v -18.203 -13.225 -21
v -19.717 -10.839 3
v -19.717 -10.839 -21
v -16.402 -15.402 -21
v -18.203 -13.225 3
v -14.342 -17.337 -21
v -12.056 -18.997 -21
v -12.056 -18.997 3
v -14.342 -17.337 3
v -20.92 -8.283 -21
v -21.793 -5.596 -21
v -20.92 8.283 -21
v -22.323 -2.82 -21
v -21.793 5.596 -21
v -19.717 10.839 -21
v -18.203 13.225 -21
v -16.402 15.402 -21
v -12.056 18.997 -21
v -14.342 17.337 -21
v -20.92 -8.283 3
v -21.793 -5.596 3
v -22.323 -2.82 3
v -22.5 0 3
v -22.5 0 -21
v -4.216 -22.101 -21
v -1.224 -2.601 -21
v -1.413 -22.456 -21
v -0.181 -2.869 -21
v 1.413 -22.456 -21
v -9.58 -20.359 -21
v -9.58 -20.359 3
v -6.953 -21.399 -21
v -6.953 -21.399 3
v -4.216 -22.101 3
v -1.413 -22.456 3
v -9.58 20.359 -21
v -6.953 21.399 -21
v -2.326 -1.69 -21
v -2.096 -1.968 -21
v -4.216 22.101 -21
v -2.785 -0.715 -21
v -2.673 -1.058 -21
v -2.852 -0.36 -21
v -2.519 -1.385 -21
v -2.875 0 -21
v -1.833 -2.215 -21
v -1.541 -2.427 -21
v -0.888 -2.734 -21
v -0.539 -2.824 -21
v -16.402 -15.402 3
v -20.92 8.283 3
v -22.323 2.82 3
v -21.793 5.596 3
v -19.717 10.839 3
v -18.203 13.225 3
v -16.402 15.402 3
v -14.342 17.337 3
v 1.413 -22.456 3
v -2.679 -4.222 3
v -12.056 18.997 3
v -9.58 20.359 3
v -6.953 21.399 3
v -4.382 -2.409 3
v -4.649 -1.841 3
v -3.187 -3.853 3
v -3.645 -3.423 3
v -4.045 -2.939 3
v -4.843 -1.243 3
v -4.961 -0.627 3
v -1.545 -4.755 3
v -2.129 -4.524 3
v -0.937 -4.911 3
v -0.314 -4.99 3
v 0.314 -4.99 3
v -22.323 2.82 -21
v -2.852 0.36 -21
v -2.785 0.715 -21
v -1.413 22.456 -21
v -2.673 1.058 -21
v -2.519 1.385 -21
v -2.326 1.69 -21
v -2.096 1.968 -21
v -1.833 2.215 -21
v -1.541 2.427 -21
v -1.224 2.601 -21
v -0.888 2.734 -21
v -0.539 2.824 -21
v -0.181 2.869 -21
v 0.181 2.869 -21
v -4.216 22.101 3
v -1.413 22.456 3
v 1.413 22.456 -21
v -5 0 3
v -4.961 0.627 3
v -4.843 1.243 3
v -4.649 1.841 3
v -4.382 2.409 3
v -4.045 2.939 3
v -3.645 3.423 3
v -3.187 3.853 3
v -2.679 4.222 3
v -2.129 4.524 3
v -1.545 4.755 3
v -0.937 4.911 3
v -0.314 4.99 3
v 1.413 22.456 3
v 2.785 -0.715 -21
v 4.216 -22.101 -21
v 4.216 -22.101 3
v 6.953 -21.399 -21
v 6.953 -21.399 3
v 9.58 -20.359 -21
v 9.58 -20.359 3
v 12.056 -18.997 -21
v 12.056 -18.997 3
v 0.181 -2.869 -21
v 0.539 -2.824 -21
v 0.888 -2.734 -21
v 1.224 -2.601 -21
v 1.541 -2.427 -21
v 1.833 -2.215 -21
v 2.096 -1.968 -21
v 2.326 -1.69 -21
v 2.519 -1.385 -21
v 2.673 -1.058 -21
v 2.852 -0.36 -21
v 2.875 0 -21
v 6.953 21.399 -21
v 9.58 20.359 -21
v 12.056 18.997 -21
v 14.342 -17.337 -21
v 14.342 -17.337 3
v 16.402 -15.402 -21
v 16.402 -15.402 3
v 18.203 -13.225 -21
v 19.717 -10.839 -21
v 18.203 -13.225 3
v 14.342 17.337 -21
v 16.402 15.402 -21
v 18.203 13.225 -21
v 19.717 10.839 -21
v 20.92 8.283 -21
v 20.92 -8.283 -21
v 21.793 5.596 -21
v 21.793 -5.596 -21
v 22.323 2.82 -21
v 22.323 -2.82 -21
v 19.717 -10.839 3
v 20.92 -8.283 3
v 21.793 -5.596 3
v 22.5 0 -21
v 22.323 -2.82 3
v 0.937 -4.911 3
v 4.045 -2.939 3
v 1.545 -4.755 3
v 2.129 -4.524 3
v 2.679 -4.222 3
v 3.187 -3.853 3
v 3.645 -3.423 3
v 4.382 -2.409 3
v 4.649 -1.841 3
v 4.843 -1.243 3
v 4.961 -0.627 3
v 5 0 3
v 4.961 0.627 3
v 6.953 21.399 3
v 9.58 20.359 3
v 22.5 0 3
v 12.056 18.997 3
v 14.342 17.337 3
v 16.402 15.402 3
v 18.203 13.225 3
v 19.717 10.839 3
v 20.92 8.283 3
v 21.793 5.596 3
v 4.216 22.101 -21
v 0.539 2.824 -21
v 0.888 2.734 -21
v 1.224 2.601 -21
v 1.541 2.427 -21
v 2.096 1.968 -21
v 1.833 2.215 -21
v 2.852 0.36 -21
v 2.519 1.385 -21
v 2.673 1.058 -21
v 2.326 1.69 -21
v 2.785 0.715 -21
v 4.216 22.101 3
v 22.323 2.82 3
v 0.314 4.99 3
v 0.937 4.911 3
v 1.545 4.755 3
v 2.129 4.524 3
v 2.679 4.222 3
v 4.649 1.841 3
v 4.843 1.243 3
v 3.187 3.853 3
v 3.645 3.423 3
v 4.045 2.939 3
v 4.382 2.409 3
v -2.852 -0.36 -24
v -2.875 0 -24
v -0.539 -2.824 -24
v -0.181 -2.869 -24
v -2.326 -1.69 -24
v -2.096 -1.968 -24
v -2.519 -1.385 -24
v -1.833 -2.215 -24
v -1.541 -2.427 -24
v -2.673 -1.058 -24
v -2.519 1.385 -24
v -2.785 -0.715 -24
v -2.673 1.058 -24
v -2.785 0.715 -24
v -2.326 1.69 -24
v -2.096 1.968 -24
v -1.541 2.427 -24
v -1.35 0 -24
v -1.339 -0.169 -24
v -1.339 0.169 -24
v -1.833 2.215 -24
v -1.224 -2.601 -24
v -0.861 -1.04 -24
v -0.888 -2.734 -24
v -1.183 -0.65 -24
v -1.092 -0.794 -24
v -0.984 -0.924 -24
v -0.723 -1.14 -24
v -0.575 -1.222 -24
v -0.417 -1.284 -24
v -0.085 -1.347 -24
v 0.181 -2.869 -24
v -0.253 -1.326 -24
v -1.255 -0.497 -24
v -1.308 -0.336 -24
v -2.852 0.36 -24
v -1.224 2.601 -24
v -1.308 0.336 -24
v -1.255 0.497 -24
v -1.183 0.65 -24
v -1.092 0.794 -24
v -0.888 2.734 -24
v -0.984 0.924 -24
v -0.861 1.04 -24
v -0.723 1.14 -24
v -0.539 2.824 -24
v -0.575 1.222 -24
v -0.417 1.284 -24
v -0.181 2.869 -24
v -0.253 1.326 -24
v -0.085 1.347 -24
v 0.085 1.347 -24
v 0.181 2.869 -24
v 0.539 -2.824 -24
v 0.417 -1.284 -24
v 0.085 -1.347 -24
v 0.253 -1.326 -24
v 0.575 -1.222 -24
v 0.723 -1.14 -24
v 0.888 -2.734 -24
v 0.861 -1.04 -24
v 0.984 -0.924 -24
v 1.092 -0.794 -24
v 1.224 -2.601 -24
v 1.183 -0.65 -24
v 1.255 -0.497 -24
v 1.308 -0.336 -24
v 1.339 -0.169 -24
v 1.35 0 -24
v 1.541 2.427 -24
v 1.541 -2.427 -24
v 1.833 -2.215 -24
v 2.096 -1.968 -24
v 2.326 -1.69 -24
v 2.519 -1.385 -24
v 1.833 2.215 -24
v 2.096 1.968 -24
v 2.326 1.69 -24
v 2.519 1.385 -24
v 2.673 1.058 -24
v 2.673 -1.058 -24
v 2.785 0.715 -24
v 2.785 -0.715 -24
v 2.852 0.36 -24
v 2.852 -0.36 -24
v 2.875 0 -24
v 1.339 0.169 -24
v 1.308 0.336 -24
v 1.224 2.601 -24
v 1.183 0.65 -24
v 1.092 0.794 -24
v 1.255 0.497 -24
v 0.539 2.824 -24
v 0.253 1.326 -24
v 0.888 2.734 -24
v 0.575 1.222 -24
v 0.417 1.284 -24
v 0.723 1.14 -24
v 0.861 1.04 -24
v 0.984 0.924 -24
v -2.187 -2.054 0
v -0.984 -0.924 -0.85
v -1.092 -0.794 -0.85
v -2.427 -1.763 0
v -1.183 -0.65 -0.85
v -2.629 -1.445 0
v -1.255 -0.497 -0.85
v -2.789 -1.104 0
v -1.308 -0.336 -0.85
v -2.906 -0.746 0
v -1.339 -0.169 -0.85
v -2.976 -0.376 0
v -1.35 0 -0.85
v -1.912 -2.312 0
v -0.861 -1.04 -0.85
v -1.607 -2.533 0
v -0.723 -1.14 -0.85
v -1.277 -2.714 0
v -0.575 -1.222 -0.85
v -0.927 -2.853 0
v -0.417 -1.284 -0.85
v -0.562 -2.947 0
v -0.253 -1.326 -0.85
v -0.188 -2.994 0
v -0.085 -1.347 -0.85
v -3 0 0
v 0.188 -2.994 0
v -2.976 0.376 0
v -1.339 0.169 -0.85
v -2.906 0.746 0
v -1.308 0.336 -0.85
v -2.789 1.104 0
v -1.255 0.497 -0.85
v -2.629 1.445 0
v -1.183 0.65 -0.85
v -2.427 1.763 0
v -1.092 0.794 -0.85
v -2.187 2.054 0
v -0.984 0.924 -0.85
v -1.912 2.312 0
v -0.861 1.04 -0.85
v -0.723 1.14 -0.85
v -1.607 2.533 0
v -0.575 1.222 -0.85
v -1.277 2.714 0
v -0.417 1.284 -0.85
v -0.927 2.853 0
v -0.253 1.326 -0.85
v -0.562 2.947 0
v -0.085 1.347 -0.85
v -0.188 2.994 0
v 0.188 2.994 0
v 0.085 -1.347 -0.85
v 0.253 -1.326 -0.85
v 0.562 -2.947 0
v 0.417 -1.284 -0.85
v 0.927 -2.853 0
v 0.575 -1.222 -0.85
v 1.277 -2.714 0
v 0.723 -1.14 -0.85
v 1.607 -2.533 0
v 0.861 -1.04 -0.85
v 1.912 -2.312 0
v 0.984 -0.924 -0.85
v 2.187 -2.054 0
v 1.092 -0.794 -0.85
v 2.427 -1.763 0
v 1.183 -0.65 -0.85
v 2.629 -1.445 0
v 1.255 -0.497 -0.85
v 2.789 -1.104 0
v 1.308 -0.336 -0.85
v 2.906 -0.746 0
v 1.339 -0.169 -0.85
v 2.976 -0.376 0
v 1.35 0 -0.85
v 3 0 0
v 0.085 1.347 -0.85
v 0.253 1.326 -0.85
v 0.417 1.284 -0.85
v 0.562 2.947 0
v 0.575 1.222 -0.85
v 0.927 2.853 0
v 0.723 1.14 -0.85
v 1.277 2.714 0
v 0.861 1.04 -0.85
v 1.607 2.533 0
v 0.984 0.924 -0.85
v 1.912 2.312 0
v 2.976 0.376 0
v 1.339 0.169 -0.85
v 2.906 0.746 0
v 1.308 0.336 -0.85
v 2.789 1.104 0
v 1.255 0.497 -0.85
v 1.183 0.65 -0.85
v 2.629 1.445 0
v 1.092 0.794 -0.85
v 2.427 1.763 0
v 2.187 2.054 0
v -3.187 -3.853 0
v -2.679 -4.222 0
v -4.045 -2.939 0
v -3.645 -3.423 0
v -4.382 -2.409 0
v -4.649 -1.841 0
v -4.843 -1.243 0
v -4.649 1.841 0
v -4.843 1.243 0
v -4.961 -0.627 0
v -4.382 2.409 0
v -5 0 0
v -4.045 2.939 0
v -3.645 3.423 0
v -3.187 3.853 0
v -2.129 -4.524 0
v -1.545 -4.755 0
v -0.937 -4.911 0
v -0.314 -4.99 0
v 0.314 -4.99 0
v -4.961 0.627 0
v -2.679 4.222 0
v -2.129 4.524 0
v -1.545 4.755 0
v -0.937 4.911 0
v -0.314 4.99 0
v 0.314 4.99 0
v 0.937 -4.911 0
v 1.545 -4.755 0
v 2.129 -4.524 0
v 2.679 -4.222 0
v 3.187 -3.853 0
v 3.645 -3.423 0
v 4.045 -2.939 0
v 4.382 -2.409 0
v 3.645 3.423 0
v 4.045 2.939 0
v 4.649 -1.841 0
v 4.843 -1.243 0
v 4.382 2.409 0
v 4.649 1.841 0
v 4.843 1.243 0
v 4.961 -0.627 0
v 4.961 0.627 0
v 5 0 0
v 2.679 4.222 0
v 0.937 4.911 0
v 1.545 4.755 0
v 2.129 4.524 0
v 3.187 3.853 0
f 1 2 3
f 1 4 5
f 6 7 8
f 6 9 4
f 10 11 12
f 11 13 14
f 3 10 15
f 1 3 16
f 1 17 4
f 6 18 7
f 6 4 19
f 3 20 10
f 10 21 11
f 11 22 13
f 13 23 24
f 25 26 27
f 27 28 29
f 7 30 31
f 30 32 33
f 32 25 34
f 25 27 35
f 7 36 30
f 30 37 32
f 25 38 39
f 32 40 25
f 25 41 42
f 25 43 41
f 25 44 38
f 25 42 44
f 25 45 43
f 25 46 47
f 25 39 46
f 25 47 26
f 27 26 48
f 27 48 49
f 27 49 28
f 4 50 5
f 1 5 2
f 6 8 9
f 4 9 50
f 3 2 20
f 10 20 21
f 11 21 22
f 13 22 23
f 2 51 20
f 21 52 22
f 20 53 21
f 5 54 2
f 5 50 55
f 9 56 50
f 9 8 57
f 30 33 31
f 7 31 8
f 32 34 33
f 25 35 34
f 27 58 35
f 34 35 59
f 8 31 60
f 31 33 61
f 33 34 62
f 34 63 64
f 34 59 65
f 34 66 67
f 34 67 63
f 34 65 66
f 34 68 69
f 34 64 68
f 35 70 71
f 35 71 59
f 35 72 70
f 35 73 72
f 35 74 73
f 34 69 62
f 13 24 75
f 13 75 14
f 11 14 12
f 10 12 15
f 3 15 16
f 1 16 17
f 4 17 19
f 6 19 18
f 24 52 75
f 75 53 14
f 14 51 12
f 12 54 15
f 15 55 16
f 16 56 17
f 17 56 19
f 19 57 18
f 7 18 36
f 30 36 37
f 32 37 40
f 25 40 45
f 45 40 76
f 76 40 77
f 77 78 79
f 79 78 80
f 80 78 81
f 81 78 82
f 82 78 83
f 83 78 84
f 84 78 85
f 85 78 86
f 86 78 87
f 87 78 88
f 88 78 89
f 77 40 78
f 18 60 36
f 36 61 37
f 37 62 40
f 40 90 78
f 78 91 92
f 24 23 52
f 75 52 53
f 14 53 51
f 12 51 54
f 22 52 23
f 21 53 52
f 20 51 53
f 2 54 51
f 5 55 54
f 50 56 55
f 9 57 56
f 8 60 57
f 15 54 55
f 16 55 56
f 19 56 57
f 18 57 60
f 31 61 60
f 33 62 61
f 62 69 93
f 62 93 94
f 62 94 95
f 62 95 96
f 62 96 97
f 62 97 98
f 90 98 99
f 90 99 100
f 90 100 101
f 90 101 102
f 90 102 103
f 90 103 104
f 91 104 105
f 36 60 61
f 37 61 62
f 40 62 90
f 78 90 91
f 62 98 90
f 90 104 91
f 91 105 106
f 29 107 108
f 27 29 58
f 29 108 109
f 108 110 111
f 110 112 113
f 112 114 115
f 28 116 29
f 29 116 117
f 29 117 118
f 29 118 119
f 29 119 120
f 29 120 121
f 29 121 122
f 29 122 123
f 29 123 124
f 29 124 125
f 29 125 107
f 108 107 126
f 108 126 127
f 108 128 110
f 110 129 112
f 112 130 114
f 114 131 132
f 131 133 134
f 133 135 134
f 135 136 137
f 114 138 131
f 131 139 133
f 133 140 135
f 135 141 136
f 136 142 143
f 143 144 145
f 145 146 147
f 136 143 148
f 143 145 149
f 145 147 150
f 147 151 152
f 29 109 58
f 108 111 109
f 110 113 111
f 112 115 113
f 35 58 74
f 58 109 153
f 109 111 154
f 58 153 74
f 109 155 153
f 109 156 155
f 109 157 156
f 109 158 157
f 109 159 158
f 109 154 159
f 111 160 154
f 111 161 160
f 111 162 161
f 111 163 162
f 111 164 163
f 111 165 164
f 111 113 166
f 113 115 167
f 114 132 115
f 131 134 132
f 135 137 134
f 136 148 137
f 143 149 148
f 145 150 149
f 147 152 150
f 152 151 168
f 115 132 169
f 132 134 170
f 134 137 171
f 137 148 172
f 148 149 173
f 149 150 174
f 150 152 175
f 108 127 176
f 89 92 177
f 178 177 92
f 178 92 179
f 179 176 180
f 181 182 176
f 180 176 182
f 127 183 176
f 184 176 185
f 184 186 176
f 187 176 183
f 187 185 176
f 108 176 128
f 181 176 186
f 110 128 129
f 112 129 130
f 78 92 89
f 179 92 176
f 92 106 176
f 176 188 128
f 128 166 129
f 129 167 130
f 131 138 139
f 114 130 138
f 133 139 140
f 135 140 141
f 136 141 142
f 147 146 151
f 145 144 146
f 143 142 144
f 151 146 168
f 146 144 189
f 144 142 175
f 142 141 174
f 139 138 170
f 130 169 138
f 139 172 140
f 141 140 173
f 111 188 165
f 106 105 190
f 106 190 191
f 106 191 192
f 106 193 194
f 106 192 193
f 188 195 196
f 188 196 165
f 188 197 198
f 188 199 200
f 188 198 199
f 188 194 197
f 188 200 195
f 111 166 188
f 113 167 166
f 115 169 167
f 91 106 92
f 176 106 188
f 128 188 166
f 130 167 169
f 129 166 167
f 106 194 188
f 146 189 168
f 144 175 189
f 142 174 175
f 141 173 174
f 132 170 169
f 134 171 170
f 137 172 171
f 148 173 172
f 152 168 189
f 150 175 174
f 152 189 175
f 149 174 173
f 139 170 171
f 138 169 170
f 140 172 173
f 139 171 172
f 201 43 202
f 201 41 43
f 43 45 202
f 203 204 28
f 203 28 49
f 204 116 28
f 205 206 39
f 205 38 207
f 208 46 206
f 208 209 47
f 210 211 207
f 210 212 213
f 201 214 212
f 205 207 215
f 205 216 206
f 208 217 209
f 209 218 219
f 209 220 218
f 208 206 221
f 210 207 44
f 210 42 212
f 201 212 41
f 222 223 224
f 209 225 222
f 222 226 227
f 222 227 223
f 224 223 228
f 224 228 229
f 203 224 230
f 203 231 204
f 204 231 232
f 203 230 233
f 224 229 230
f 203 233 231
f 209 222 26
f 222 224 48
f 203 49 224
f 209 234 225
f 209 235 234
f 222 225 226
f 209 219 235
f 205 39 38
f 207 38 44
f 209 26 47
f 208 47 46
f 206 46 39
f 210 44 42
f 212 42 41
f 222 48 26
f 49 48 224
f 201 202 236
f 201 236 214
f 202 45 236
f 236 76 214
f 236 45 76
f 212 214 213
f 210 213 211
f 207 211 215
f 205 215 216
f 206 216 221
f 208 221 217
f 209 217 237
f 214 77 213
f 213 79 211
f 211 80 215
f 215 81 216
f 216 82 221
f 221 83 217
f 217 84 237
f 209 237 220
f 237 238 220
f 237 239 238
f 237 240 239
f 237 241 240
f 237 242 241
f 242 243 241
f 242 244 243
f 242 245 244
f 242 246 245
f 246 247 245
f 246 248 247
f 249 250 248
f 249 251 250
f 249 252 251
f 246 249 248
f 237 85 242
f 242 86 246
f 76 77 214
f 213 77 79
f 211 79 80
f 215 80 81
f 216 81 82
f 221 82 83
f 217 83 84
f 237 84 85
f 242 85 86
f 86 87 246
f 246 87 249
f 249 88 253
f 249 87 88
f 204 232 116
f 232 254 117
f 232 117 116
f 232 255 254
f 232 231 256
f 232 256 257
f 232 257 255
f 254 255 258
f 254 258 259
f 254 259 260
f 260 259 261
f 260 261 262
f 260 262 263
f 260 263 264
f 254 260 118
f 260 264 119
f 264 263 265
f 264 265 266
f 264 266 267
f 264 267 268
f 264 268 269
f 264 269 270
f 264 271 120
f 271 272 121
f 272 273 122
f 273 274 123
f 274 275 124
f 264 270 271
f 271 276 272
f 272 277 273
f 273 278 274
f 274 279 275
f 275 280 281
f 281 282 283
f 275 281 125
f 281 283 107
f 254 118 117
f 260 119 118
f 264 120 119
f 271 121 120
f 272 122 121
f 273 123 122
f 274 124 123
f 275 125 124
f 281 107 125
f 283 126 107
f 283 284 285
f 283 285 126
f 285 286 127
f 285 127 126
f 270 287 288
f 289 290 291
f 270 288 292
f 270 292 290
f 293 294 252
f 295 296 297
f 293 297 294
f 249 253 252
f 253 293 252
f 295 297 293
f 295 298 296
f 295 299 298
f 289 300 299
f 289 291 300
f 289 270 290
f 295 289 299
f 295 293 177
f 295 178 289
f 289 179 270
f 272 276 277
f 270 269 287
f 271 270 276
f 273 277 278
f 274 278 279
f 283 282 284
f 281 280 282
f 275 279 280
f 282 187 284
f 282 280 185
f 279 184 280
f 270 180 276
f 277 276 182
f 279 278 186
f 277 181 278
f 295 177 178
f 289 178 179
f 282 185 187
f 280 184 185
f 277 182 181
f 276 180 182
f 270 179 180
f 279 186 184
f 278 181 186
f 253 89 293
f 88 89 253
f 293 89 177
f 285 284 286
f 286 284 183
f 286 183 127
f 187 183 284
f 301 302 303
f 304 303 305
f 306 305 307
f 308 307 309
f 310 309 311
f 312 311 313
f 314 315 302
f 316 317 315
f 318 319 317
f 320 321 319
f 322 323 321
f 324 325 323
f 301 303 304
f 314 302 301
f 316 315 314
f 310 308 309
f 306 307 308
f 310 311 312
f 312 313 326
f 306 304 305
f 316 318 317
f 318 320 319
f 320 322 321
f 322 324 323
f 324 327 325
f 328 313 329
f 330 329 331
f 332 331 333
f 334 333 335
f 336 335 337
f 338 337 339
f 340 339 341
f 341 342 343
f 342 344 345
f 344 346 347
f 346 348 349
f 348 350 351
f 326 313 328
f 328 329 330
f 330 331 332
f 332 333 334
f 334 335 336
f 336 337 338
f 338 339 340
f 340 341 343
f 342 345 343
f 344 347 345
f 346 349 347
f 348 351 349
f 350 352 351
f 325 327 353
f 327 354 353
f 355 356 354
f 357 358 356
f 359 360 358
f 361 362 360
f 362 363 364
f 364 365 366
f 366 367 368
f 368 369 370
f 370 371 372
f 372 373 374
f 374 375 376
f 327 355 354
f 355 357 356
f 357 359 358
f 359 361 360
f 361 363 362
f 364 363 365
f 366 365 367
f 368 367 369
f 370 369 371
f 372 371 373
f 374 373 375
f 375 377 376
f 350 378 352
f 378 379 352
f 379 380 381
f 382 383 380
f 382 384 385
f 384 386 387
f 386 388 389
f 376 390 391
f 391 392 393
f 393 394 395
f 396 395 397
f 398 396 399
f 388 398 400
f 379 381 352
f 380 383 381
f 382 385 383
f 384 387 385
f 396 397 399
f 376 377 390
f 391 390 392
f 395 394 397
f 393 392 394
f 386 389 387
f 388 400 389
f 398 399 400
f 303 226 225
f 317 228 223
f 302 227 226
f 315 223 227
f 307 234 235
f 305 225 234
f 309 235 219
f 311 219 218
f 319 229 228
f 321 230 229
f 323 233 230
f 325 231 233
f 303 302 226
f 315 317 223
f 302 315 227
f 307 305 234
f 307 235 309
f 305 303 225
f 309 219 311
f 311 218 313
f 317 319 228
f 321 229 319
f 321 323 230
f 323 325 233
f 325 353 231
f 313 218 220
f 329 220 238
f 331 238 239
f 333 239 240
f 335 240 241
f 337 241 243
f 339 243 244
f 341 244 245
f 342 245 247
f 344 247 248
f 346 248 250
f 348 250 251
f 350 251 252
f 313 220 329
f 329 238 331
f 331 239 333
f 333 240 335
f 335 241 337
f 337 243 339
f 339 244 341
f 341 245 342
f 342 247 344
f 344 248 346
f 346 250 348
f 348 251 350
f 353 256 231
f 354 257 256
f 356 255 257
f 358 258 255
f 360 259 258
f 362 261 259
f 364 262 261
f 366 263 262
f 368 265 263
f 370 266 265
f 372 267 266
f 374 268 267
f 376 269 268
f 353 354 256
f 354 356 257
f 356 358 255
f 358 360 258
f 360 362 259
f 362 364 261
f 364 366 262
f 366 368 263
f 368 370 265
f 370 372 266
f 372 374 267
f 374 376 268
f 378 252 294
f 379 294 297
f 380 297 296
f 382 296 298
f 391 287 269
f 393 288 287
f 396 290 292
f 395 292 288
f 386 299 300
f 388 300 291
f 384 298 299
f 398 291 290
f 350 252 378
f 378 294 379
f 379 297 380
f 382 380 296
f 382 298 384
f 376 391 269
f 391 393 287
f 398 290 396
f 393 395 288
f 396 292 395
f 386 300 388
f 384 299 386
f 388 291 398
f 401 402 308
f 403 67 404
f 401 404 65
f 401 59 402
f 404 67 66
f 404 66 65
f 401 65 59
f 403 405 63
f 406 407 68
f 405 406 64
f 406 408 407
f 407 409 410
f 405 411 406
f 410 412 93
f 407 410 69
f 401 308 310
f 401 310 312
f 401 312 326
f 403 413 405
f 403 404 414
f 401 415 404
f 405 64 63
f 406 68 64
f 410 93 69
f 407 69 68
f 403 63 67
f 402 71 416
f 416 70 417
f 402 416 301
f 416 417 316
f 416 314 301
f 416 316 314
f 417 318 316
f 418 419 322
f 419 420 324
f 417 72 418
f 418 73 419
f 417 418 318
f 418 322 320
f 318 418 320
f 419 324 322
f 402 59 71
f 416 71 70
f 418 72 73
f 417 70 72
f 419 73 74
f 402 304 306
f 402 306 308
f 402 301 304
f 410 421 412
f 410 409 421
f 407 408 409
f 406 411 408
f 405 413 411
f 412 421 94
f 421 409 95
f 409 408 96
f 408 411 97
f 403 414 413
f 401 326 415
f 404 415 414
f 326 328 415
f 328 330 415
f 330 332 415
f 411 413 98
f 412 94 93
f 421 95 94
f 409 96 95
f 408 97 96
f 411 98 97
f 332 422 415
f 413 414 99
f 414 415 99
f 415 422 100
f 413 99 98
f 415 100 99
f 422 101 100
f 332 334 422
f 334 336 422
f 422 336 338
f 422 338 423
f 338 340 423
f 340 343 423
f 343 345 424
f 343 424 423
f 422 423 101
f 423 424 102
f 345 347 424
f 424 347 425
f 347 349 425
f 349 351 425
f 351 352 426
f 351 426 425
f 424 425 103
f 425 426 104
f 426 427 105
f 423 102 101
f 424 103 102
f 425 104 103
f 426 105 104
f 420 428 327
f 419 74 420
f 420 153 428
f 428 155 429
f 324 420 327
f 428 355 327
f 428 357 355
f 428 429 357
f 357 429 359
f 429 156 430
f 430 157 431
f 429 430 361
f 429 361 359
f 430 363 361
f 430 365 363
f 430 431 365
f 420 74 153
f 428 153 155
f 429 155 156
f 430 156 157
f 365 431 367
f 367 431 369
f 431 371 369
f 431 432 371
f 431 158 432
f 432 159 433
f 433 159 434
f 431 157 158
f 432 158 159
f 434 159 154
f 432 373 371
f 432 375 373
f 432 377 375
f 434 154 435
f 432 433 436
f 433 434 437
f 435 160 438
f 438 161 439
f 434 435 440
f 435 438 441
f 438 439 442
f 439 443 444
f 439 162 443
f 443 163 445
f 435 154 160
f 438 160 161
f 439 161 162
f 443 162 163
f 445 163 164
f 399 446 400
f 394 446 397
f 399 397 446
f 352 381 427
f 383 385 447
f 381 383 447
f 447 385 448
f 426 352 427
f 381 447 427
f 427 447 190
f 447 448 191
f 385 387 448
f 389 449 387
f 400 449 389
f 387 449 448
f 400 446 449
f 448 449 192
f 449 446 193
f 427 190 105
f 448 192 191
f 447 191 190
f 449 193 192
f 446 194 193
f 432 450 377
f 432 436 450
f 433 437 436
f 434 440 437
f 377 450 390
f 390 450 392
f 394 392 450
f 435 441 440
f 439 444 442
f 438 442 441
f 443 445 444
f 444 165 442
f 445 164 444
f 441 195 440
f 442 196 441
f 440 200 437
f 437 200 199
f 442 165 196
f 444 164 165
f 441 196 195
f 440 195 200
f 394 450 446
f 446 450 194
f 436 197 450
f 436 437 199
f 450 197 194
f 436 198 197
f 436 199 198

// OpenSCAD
$fn = 50;

difference() {
	union() {
		translate(v = [0, 0, -21.0]) {
			cylinder(h = 24, r = 22.5);
		}
		#translate(v = [0, 0, -24.0]) {
			cylinder(h = 24, r = 2.875);
		}
	}
	union() {
		translate(v = [0, 0, 0]) {
			rotate(a = [0, 0, 0]) {
				difference() {
					union() {
						translate(v = [0, 0, -24.0]) {
							cylinder(h = 24, r = 1.0);
						}
						translate(v = [0, 0, -0.85]) {
							cylinder(h = 0.85, r1 = 1.35, r2 = 3.0);
						}
						translate(v = [0, 0, -24.0]) {
							cylinder(h = 24, r = 1.35);
						}
						translate(v = [0, 0, -24.0]) {
							cylinder(h = 24, r = 1.0);
						}
					}
					union();
				}
			}
		}
		#cylinder(h = 3, r = 5.0);
	}
}
